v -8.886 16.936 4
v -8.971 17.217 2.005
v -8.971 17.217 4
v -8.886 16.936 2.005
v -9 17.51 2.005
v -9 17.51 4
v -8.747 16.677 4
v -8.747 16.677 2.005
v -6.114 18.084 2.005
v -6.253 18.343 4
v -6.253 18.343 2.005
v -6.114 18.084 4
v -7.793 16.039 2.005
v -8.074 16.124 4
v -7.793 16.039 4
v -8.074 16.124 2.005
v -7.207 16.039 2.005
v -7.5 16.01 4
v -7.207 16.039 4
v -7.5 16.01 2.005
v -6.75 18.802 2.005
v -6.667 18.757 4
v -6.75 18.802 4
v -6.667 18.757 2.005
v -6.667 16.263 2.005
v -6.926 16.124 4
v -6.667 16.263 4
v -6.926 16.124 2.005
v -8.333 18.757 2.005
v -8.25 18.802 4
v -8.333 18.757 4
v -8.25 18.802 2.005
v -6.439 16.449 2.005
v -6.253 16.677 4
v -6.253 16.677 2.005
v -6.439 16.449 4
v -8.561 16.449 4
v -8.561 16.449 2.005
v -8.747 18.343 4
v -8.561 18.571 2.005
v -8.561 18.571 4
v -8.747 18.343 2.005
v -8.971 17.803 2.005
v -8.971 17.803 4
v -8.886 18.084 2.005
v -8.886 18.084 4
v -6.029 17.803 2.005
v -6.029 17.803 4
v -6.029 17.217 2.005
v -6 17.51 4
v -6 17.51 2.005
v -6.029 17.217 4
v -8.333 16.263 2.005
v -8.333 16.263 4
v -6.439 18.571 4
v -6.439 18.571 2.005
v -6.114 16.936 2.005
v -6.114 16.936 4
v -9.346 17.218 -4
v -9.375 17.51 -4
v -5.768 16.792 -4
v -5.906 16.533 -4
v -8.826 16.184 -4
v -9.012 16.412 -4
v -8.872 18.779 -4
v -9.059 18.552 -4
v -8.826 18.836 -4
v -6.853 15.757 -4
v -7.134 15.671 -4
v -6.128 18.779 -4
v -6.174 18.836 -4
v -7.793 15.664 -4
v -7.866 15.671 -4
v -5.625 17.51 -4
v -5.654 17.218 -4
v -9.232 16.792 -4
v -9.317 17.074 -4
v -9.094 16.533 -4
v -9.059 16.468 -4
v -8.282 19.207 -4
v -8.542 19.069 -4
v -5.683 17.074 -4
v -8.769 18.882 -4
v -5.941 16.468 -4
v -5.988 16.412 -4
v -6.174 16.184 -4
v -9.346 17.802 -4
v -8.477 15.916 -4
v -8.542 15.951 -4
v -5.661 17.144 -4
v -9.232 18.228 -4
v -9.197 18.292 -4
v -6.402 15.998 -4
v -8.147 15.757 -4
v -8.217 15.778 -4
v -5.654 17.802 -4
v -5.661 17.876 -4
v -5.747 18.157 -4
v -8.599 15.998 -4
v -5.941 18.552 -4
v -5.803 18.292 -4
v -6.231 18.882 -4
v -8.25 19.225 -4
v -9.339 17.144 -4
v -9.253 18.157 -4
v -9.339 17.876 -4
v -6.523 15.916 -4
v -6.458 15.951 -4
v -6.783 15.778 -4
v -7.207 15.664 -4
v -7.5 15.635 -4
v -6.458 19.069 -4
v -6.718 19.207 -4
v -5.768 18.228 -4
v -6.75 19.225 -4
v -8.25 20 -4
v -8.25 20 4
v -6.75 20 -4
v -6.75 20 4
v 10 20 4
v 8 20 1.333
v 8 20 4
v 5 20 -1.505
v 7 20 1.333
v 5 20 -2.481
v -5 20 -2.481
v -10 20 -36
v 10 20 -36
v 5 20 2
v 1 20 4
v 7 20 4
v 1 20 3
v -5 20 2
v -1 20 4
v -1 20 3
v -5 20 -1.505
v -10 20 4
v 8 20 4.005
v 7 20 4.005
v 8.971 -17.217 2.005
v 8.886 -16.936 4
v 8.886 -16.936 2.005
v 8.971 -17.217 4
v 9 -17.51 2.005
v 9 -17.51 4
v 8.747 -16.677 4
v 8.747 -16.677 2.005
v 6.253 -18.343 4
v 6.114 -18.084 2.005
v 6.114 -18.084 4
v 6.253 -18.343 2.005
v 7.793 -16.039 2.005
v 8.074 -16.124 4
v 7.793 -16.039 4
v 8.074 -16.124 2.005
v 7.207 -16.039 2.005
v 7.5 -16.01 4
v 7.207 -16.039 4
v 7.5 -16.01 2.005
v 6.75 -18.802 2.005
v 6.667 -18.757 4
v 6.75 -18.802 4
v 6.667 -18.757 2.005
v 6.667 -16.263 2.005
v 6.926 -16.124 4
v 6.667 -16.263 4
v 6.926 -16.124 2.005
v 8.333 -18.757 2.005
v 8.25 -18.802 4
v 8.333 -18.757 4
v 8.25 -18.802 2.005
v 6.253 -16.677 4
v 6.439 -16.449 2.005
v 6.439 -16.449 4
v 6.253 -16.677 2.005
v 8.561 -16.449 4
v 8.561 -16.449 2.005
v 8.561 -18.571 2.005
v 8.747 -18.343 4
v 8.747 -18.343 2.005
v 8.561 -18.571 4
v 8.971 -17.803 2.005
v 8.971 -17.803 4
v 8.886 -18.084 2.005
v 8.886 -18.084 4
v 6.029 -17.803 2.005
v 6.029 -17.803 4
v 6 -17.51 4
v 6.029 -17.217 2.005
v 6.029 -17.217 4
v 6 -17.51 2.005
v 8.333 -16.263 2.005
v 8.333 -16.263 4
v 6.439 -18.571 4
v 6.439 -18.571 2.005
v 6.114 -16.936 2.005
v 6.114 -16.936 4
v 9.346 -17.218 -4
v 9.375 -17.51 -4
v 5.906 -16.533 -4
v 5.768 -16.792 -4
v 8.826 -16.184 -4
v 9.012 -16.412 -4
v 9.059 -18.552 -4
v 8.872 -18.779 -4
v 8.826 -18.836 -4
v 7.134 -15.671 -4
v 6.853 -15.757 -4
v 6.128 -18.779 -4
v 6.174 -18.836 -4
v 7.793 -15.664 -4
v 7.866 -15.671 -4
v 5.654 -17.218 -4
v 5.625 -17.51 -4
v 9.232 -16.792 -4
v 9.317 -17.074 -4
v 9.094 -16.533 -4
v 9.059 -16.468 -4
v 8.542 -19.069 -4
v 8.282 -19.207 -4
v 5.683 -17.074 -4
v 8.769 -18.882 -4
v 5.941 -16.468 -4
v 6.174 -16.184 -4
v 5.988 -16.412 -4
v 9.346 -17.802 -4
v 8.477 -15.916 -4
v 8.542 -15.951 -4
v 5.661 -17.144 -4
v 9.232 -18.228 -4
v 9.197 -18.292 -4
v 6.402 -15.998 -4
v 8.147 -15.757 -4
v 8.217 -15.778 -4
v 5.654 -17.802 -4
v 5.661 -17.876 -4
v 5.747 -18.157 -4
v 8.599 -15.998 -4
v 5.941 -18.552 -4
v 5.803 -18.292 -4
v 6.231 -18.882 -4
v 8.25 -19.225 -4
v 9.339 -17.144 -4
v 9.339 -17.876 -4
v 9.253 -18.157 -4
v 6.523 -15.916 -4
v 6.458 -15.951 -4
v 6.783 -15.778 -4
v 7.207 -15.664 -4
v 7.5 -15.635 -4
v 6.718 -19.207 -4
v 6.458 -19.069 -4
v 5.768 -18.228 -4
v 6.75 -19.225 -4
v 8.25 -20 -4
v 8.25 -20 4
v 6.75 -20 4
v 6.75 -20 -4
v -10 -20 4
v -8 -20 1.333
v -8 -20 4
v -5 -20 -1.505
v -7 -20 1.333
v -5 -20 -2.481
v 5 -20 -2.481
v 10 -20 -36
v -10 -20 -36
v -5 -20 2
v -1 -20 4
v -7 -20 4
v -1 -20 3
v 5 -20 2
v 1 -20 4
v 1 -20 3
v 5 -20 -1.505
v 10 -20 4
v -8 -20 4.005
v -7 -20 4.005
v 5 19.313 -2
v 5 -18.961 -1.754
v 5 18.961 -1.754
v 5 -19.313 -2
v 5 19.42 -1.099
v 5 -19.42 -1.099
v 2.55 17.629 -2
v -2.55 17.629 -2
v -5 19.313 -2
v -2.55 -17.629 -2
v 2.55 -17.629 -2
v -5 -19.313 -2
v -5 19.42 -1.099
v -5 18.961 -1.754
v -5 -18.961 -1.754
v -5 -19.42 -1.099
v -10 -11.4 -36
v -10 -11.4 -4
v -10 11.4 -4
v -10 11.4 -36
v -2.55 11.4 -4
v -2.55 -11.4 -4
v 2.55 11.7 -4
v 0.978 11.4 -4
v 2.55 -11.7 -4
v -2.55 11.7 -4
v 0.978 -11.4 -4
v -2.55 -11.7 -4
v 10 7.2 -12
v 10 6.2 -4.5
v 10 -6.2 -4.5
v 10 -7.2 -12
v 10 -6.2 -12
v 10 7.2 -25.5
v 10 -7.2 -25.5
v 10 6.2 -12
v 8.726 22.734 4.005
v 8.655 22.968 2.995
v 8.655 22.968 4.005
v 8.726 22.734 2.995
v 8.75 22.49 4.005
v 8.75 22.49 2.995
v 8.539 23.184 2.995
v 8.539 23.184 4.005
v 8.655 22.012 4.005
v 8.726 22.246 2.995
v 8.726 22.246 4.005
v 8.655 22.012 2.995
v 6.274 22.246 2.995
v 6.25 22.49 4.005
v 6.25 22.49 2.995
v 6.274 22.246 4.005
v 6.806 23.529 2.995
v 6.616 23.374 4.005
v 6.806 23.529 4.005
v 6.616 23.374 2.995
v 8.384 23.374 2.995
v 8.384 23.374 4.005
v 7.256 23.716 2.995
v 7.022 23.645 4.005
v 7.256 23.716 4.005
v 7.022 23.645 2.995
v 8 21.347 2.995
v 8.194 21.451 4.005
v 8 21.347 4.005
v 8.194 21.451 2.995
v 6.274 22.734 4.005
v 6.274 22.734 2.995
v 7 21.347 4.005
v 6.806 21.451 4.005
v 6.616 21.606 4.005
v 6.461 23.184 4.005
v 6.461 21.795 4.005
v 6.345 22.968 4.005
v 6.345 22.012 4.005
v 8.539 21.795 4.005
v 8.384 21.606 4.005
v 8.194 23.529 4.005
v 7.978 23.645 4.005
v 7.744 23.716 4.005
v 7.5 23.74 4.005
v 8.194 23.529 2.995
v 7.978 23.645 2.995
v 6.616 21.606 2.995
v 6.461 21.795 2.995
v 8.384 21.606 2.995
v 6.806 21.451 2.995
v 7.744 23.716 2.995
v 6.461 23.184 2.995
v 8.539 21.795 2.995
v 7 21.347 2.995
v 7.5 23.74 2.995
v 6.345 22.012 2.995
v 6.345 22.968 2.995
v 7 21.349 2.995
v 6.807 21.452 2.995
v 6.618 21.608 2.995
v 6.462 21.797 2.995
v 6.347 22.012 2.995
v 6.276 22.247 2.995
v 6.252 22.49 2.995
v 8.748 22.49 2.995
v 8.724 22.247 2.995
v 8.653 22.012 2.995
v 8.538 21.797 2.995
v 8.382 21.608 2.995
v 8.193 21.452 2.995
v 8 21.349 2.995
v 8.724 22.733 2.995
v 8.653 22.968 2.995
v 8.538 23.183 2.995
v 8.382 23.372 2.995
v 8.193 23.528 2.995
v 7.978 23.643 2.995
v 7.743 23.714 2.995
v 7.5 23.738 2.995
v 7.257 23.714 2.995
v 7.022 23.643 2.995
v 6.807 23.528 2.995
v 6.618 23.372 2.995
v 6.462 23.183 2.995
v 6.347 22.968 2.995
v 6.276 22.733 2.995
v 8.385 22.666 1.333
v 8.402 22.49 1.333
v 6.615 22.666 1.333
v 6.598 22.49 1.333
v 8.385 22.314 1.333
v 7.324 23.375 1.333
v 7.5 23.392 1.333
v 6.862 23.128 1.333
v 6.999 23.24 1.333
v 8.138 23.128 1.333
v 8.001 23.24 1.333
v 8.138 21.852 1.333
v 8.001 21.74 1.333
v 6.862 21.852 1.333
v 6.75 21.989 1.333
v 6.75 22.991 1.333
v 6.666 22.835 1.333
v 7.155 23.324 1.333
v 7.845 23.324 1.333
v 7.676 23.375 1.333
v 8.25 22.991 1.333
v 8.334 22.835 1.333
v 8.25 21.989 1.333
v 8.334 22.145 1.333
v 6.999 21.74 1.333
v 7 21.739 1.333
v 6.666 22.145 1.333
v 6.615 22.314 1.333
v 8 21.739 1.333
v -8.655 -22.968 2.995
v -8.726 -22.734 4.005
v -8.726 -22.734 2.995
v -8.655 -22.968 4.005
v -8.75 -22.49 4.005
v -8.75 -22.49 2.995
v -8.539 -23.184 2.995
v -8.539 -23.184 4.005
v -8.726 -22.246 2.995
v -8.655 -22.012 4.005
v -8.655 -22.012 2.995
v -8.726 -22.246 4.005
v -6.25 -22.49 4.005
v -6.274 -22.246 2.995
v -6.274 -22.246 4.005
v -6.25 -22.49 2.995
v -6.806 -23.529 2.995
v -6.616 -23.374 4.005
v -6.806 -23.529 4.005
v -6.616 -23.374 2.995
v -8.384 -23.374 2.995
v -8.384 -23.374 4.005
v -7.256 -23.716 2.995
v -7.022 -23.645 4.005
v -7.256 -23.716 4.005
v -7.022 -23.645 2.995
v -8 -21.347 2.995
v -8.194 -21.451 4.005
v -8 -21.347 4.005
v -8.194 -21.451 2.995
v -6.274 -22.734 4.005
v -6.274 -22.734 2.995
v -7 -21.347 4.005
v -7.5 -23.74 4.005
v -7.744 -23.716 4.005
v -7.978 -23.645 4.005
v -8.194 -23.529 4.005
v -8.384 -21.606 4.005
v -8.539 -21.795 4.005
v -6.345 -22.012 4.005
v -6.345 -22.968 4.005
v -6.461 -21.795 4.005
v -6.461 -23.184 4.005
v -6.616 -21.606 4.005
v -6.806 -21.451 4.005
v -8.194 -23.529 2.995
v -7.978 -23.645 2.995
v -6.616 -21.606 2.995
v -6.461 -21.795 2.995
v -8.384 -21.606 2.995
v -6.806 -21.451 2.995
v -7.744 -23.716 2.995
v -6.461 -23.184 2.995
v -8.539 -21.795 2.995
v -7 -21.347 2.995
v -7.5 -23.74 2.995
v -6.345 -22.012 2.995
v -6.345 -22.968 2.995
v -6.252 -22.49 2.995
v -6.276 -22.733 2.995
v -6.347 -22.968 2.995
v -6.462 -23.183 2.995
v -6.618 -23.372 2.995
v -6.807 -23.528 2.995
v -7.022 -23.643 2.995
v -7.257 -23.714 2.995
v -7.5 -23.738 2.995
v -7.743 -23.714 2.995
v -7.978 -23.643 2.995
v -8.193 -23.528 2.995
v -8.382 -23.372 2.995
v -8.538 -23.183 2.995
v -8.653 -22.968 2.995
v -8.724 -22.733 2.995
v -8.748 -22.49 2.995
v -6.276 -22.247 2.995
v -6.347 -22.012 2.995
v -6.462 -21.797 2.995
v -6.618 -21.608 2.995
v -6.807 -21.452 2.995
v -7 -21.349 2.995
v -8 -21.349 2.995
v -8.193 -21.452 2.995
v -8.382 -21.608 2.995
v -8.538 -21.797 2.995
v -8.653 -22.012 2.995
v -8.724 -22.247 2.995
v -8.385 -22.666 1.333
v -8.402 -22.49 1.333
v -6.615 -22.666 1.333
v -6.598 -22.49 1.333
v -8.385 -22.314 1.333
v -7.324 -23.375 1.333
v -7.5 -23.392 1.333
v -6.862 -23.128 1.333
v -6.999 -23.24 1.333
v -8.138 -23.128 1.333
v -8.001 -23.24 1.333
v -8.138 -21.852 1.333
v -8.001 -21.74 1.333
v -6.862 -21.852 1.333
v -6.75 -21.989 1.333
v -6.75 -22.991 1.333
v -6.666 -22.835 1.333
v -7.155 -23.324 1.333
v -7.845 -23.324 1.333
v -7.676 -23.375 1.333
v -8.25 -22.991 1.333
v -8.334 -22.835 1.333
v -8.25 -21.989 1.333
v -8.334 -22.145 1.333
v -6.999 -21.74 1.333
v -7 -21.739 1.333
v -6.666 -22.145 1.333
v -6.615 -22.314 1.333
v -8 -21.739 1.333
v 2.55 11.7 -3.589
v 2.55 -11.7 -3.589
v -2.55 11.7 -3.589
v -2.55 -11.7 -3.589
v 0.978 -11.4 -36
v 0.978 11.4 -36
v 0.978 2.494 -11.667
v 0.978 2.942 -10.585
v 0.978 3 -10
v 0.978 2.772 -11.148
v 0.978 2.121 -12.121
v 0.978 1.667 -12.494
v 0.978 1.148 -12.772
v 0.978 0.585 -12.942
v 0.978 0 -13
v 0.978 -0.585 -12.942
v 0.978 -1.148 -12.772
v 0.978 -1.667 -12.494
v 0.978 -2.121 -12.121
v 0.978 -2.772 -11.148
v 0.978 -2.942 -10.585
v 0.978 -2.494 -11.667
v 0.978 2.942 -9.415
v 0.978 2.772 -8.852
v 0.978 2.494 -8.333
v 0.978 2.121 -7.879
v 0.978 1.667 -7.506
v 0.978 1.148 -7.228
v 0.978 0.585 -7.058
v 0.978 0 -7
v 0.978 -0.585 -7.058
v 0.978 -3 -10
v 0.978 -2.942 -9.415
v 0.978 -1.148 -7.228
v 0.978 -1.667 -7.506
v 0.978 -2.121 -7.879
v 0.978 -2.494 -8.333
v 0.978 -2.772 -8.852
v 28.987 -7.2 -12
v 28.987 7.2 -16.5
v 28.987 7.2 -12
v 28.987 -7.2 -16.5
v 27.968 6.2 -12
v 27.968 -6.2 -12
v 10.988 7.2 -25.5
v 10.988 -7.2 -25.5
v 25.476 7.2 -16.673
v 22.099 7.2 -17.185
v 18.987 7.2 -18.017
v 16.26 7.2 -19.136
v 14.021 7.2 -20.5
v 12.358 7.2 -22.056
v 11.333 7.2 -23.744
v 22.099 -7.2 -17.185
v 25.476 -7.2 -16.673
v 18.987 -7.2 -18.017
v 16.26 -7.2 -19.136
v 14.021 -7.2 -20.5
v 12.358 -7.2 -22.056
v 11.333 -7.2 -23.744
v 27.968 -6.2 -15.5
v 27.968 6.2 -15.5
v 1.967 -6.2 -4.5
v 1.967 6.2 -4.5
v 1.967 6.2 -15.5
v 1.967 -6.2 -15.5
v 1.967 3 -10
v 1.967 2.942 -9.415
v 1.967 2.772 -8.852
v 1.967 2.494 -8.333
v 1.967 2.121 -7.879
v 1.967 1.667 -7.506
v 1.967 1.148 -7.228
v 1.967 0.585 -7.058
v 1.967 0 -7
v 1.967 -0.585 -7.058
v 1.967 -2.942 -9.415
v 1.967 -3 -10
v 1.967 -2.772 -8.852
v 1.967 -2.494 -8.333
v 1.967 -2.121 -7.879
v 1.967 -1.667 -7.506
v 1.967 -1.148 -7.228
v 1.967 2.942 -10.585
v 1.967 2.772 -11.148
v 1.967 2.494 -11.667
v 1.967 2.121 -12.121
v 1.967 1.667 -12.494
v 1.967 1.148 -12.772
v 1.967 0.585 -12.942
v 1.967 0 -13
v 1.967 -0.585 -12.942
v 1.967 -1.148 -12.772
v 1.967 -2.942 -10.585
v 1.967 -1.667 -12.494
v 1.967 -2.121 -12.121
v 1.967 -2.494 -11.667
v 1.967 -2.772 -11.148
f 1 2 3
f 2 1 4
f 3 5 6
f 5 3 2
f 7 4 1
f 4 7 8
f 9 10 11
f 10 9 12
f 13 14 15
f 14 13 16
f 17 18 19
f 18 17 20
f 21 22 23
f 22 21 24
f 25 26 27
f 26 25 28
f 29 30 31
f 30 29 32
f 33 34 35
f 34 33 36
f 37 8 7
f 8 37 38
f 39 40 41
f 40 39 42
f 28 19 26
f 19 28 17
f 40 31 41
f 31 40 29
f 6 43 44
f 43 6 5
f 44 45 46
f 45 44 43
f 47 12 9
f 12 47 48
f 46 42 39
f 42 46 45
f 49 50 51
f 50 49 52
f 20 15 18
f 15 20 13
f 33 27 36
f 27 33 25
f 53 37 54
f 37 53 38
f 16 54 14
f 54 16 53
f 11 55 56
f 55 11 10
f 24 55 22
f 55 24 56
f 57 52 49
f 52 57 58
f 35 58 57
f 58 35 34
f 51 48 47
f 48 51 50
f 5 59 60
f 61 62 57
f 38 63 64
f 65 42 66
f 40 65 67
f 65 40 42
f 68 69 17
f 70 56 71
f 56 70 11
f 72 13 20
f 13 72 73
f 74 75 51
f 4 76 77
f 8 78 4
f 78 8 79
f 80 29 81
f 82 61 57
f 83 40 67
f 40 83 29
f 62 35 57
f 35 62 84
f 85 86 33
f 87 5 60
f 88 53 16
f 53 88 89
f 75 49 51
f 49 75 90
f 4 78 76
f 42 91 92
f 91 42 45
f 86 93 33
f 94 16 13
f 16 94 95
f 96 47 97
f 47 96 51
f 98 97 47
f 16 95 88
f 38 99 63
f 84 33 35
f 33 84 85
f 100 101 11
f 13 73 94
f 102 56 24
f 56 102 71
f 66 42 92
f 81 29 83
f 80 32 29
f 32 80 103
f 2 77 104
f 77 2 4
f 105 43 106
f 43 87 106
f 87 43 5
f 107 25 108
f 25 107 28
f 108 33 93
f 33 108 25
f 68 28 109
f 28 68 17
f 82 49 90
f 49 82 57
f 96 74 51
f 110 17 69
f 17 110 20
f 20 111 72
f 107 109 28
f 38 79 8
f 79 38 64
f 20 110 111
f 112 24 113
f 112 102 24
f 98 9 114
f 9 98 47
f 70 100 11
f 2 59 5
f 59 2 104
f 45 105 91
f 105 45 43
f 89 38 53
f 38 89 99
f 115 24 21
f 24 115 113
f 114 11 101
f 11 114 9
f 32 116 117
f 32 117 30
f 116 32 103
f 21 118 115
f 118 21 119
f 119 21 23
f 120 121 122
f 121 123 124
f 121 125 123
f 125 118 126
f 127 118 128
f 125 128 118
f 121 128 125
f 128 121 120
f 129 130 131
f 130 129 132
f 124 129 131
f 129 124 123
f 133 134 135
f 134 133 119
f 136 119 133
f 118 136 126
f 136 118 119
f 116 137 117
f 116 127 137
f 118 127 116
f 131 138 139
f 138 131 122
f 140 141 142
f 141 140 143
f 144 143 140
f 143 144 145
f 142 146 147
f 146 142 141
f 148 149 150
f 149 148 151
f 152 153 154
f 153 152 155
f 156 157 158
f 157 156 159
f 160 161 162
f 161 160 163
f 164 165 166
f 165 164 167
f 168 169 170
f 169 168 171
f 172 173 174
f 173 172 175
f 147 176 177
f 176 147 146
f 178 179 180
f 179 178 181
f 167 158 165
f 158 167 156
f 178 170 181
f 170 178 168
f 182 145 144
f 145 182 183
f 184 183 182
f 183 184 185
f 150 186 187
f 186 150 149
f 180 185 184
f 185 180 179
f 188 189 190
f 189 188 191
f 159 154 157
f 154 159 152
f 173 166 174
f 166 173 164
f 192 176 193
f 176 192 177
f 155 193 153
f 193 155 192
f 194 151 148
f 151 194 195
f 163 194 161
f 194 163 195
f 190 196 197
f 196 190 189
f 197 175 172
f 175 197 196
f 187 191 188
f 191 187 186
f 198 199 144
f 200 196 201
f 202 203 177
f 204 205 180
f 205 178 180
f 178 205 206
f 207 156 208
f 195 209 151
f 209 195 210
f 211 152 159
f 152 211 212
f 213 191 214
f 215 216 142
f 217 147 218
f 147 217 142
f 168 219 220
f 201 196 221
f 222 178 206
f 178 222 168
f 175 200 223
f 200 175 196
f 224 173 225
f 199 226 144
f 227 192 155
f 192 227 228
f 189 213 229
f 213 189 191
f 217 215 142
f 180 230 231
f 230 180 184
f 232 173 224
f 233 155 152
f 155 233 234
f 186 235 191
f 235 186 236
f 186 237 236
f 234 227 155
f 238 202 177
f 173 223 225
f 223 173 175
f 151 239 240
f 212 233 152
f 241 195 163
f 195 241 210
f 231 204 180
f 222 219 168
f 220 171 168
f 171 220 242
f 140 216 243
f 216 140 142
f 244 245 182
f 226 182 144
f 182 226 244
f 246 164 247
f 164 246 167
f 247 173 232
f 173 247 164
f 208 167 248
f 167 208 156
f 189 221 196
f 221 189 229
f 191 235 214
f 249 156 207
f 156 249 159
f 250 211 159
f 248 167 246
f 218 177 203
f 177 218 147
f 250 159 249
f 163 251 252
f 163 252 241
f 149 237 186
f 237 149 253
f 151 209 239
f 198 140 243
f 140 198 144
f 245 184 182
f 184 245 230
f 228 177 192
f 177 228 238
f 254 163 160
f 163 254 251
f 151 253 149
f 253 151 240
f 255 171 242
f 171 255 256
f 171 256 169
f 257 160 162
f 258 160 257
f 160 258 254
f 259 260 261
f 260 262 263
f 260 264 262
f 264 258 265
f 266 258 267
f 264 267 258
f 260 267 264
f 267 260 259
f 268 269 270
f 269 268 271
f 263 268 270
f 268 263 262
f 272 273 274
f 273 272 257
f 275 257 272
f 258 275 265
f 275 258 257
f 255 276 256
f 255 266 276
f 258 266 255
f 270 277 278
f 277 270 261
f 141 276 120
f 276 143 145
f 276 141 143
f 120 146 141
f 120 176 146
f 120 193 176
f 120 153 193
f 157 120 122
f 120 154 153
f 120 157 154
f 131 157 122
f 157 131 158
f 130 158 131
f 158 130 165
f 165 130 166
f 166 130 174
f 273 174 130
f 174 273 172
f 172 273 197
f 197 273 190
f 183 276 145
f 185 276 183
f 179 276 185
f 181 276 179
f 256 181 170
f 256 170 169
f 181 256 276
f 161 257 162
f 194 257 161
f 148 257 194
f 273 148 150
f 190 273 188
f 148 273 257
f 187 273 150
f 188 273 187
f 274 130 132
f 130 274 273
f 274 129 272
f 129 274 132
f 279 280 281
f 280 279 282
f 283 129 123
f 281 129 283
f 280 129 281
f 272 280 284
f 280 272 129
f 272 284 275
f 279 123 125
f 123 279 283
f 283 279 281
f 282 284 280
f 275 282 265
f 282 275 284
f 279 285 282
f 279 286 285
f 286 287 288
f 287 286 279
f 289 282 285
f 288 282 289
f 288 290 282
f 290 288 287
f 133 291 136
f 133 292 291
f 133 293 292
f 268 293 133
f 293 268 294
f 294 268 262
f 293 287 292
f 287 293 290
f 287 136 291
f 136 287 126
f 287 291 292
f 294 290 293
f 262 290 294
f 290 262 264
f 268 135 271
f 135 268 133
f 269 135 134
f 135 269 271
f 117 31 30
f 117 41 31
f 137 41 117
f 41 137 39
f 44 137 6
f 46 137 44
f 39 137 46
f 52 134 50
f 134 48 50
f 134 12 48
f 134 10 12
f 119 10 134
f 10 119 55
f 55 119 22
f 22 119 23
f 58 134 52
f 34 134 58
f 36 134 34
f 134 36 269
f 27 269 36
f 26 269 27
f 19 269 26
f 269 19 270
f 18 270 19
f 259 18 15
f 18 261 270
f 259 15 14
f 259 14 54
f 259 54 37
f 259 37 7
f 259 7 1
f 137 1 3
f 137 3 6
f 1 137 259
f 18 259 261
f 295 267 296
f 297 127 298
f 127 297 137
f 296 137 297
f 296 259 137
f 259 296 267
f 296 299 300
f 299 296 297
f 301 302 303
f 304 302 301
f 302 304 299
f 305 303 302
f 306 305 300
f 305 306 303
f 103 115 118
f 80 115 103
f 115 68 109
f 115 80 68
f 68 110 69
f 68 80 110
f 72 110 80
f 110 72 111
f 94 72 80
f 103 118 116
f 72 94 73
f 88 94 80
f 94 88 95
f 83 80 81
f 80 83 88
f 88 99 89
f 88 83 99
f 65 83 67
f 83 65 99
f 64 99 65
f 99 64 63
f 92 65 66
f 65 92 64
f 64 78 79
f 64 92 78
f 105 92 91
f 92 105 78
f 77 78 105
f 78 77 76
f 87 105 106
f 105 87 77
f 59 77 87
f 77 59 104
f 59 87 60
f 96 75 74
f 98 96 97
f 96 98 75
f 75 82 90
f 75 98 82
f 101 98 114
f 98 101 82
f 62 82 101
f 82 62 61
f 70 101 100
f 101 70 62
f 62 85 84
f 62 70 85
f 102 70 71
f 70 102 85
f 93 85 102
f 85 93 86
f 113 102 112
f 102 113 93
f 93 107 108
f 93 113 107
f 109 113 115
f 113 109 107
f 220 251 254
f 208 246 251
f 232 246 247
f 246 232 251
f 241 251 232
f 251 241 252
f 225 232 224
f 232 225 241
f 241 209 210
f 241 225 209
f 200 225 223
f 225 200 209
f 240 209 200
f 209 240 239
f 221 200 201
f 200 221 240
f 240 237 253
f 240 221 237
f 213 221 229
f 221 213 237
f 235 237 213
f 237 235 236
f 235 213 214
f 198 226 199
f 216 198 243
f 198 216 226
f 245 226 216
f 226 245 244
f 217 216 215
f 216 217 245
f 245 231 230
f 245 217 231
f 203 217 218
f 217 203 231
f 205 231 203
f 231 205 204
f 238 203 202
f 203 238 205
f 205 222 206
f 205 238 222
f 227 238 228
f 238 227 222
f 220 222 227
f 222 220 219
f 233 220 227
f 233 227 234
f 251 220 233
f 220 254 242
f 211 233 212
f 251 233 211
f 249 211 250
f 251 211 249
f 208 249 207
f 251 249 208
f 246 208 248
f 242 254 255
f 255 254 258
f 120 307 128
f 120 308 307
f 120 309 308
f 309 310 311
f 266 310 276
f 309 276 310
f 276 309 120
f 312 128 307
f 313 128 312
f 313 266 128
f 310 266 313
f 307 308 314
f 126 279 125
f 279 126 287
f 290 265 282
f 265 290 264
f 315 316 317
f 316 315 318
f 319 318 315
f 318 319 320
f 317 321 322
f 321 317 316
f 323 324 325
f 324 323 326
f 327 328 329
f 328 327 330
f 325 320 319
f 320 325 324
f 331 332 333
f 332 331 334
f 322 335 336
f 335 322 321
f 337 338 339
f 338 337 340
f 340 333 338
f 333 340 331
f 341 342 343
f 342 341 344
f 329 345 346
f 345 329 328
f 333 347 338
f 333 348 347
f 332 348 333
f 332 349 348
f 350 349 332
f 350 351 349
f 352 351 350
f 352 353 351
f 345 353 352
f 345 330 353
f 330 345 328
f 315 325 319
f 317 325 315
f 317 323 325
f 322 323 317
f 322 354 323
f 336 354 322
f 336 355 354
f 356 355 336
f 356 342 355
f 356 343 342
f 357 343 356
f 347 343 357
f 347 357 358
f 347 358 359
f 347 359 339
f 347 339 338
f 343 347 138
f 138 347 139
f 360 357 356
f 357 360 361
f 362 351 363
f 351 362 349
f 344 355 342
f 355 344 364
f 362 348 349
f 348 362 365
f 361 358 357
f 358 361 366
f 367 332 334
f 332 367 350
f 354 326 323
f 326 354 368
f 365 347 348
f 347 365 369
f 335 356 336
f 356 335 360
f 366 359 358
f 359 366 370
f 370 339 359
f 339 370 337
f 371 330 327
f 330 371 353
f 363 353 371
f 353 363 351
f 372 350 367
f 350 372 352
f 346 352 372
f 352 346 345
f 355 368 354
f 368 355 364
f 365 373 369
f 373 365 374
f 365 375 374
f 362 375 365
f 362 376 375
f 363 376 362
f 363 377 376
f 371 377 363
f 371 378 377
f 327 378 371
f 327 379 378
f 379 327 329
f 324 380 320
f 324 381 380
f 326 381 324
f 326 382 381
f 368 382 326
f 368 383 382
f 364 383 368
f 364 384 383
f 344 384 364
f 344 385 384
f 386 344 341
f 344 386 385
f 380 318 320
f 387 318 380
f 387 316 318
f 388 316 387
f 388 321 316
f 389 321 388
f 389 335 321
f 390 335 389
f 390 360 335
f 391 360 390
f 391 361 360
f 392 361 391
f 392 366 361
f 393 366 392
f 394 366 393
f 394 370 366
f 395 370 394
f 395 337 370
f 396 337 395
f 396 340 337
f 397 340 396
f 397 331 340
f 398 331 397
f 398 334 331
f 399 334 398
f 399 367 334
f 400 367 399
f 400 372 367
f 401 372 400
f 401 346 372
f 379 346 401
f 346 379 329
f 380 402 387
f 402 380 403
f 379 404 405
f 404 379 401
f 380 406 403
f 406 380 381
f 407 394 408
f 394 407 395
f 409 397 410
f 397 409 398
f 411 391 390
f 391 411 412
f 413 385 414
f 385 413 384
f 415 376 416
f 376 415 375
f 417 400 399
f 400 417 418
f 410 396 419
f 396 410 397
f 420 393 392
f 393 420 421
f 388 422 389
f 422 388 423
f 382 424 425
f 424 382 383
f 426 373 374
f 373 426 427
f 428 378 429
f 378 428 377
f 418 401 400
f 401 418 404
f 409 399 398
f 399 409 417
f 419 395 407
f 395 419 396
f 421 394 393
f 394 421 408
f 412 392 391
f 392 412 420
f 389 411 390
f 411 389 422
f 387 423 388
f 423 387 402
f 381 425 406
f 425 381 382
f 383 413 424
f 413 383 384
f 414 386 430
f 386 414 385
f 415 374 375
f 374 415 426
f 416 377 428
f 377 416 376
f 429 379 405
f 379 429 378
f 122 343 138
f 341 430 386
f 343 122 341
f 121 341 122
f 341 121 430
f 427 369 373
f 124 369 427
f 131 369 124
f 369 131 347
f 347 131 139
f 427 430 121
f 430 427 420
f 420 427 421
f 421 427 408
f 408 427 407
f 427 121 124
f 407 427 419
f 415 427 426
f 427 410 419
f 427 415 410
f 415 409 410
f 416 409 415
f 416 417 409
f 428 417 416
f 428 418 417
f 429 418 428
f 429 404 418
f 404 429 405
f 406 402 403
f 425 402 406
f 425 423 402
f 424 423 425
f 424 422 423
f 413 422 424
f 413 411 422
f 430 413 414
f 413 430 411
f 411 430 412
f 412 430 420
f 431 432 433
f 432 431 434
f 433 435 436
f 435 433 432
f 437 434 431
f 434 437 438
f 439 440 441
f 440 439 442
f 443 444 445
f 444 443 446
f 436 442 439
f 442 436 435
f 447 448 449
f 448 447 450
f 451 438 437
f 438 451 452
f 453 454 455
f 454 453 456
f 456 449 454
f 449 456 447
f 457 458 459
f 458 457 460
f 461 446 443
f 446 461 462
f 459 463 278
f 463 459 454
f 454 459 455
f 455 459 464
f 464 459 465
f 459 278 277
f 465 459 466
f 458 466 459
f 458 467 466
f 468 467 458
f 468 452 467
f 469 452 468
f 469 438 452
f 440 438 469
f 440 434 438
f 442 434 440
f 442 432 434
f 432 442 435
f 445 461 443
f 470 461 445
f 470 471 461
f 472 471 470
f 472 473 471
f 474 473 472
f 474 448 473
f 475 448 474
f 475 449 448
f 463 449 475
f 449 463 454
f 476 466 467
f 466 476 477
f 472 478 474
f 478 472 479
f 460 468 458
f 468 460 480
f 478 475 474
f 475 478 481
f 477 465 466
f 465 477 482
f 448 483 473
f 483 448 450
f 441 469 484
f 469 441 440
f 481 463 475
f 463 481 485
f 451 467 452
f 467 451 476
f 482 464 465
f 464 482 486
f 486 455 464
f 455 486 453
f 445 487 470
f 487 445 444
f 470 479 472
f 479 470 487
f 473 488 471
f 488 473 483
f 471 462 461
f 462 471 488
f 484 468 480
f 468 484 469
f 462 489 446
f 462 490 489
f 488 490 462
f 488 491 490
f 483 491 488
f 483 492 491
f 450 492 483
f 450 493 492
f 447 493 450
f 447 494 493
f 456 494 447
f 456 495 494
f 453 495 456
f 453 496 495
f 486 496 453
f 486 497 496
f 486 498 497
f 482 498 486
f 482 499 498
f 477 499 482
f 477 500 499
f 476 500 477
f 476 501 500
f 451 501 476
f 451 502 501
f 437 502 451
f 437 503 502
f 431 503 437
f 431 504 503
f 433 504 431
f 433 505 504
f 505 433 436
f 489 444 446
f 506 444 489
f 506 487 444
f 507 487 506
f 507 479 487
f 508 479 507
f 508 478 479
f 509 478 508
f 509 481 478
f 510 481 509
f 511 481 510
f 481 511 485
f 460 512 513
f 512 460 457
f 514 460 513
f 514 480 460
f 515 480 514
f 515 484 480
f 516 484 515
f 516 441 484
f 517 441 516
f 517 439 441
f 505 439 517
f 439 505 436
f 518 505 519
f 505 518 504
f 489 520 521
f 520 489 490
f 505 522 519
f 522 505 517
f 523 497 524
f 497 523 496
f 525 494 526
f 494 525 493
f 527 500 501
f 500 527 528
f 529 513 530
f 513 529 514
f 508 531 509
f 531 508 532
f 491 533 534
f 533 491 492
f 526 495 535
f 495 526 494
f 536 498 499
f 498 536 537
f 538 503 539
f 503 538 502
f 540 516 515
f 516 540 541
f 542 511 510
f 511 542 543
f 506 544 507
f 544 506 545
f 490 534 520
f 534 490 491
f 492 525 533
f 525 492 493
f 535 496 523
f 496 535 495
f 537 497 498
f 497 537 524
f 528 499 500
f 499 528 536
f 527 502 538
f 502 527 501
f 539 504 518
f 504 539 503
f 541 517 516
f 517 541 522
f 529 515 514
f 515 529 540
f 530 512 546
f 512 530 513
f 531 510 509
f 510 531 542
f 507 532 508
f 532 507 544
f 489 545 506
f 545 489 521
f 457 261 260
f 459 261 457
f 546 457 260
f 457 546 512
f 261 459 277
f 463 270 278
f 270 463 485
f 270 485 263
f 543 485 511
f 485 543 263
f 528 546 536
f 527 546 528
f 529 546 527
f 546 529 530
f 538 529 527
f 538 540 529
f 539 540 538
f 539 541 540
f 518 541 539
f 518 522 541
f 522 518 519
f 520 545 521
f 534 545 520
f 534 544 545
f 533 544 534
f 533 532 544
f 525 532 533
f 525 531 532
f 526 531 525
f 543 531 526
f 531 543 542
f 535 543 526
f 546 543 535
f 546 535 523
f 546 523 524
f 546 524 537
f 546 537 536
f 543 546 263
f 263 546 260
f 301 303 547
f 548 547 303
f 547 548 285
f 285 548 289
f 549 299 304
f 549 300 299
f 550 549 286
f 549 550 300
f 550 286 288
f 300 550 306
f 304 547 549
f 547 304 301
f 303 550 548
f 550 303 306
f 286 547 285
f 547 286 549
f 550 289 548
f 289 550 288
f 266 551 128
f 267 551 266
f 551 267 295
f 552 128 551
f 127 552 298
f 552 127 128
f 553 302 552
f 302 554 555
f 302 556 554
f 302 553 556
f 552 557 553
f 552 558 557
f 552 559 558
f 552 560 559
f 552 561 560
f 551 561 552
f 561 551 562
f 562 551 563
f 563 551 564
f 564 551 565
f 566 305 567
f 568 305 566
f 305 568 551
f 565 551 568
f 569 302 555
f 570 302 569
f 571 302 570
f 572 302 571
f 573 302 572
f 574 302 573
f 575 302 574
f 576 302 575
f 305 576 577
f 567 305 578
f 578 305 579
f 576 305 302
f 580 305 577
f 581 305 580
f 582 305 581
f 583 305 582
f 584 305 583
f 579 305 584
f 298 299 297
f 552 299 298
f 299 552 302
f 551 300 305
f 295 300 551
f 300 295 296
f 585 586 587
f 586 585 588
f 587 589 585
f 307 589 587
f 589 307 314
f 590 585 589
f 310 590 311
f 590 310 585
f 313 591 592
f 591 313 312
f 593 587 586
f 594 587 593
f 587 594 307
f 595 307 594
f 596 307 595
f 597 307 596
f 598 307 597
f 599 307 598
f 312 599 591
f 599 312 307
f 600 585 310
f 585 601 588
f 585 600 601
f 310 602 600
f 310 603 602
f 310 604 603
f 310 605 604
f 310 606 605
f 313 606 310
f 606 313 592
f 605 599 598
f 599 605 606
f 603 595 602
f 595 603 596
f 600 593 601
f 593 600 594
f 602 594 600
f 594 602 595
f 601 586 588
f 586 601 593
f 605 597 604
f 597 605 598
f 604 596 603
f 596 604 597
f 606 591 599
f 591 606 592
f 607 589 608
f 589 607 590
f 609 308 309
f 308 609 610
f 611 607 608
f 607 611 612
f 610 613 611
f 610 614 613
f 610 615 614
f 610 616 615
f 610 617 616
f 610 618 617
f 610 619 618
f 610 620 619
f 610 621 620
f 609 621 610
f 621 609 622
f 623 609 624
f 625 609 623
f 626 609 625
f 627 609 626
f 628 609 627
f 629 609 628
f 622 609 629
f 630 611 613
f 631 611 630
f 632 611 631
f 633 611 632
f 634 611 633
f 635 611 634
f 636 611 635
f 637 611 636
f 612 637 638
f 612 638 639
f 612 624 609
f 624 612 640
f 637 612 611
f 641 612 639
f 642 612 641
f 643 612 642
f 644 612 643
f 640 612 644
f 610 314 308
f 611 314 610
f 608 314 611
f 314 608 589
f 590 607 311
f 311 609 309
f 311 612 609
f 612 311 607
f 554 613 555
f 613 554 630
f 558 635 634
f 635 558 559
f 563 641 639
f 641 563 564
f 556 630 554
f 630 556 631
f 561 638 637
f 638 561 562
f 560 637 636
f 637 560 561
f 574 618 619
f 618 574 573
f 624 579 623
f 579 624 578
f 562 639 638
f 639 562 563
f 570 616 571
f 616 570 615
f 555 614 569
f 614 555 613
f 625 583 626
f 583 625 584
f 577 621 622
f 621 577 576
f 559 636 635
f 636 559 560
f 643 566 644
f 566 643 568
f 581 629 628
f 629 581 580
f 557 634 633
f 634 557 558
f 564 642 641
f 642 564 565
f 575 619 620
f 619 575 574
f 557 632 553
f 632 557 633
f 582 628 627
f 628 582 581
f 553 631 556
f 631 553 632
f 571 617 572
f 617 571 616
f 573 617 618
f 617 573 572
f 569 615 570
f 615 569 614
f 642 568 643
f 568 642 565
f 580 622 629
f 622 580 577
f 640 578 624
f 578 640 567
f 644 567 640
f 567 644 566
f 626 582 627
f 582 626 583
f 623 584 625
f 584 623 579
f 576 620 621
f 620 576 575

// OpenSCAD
/*

  ttt_motor_holder_plain.scad

  (c) olikraus@gmail.com

  This work is licensed under the Creative Commons Attribution-NonCommercial-ShareAlike 4.0 International License. 
  To view a copy of this license, visit http://creativecommons.org/licenses/by-nc-sa/4.0/.

  grid tile train tube track motor house 
  
  n20 dc gear motor 10x12x25
  
  Mini N20 Gear Reduction Motor DC 3V-6V 55RPM Slow Speed
*/
include <train_tube_track.scad>;

motor_length = 26;
motor_height = 11;
motor_width = 12.4;
motor_holder_wall = 1;

//translate([0,0,height])
union() {
//    straight_track_h_double_plug(grid);
difference() {
    straight_track_double_plug(grid);

    /* cut out gear opening */
    translate([0,0,-inner_height+d])
    cube([ship_width*house_gear_width_factor,
    ship_length*1.95, inner_height], center=true);
    

    /* cut out a ramp for the ships */
    
    translate([0,
        ship_length*1.95/2+2, 
        -(outer_height-inner_height)+2.5])
    rotate([-75,0,0])
    cube([ship_width*house_gear_width_factor,
    3, 8], center=true);

    translate([0,
        -ship_length*1.95/2-2, 
        -(outer_height-inner_height)+2.5])
    rotate([75,0,0])
    cube([ship_width*house_gear_width_factor,
    3, 8], center=true);
    
}



difference() {

    union() {
        translate([0,0,-height/2-outer_height/2]) 
        difference() {
            cube([outer_width, grid, height], center=true);
            translate([-outer_width/2+gear_thickness/2,0,d])
            cube([outer_width, ship_length*1.9, height+3*d], center=true);
        }
        /* N20 motor block holder */
        translate([motor_length/2+gear_thickness/2+d+1,0,
         -gear_radius-inner_height/2-motor_height/4-motor_holder_wall*2-4])
        difference() {
            cube([motor_length+motor_holder_wall*2, 
                motor_width+motor_holder_wall*2,
                motor_height/2+8], center=true);
            translate([(motor_length+motor_holder_wall*2)/2,
                0, -(motor_height/2+8)/2])
            scale([2, 1, 1])
            rotate([90,0,0])
            cylinder(r=8+1, h=motor_width+motor_holder_wall*2+0.1, center=true);
        }
    }
    
    /* N20 motor block cutout*/
    translate([motor_length/2+gear_thickness/2-d+1,0,-gear_radius-inner_height/2])
    cube([motor_length, motor_width, motor_height], center=true);
    
    /* N20 motor axis cutout*/    
    translate([0,0, -gear_radius-inner_height/2])
    rotate([0,90,0])
    cylinder(d=6,h=grid,center=true);
}

//translate([13+outer_width/2,0,-height-outer_height/2+4])
//difference() {
//    cube([26, grid, 8], center=true);    
//    translate([0,0,-4 + 2]) // -5: cube +2 bottom height
//    rotate([0,0,90])
//    grove_2x1(3, 12);
//}

//translate([0,0,-gear_radius-inner_height/2])
//rotate([0,90,0])
//ttt_gear(3, 0.5);
}

//translate([3*grid/4, 0, -height])
//platform();
